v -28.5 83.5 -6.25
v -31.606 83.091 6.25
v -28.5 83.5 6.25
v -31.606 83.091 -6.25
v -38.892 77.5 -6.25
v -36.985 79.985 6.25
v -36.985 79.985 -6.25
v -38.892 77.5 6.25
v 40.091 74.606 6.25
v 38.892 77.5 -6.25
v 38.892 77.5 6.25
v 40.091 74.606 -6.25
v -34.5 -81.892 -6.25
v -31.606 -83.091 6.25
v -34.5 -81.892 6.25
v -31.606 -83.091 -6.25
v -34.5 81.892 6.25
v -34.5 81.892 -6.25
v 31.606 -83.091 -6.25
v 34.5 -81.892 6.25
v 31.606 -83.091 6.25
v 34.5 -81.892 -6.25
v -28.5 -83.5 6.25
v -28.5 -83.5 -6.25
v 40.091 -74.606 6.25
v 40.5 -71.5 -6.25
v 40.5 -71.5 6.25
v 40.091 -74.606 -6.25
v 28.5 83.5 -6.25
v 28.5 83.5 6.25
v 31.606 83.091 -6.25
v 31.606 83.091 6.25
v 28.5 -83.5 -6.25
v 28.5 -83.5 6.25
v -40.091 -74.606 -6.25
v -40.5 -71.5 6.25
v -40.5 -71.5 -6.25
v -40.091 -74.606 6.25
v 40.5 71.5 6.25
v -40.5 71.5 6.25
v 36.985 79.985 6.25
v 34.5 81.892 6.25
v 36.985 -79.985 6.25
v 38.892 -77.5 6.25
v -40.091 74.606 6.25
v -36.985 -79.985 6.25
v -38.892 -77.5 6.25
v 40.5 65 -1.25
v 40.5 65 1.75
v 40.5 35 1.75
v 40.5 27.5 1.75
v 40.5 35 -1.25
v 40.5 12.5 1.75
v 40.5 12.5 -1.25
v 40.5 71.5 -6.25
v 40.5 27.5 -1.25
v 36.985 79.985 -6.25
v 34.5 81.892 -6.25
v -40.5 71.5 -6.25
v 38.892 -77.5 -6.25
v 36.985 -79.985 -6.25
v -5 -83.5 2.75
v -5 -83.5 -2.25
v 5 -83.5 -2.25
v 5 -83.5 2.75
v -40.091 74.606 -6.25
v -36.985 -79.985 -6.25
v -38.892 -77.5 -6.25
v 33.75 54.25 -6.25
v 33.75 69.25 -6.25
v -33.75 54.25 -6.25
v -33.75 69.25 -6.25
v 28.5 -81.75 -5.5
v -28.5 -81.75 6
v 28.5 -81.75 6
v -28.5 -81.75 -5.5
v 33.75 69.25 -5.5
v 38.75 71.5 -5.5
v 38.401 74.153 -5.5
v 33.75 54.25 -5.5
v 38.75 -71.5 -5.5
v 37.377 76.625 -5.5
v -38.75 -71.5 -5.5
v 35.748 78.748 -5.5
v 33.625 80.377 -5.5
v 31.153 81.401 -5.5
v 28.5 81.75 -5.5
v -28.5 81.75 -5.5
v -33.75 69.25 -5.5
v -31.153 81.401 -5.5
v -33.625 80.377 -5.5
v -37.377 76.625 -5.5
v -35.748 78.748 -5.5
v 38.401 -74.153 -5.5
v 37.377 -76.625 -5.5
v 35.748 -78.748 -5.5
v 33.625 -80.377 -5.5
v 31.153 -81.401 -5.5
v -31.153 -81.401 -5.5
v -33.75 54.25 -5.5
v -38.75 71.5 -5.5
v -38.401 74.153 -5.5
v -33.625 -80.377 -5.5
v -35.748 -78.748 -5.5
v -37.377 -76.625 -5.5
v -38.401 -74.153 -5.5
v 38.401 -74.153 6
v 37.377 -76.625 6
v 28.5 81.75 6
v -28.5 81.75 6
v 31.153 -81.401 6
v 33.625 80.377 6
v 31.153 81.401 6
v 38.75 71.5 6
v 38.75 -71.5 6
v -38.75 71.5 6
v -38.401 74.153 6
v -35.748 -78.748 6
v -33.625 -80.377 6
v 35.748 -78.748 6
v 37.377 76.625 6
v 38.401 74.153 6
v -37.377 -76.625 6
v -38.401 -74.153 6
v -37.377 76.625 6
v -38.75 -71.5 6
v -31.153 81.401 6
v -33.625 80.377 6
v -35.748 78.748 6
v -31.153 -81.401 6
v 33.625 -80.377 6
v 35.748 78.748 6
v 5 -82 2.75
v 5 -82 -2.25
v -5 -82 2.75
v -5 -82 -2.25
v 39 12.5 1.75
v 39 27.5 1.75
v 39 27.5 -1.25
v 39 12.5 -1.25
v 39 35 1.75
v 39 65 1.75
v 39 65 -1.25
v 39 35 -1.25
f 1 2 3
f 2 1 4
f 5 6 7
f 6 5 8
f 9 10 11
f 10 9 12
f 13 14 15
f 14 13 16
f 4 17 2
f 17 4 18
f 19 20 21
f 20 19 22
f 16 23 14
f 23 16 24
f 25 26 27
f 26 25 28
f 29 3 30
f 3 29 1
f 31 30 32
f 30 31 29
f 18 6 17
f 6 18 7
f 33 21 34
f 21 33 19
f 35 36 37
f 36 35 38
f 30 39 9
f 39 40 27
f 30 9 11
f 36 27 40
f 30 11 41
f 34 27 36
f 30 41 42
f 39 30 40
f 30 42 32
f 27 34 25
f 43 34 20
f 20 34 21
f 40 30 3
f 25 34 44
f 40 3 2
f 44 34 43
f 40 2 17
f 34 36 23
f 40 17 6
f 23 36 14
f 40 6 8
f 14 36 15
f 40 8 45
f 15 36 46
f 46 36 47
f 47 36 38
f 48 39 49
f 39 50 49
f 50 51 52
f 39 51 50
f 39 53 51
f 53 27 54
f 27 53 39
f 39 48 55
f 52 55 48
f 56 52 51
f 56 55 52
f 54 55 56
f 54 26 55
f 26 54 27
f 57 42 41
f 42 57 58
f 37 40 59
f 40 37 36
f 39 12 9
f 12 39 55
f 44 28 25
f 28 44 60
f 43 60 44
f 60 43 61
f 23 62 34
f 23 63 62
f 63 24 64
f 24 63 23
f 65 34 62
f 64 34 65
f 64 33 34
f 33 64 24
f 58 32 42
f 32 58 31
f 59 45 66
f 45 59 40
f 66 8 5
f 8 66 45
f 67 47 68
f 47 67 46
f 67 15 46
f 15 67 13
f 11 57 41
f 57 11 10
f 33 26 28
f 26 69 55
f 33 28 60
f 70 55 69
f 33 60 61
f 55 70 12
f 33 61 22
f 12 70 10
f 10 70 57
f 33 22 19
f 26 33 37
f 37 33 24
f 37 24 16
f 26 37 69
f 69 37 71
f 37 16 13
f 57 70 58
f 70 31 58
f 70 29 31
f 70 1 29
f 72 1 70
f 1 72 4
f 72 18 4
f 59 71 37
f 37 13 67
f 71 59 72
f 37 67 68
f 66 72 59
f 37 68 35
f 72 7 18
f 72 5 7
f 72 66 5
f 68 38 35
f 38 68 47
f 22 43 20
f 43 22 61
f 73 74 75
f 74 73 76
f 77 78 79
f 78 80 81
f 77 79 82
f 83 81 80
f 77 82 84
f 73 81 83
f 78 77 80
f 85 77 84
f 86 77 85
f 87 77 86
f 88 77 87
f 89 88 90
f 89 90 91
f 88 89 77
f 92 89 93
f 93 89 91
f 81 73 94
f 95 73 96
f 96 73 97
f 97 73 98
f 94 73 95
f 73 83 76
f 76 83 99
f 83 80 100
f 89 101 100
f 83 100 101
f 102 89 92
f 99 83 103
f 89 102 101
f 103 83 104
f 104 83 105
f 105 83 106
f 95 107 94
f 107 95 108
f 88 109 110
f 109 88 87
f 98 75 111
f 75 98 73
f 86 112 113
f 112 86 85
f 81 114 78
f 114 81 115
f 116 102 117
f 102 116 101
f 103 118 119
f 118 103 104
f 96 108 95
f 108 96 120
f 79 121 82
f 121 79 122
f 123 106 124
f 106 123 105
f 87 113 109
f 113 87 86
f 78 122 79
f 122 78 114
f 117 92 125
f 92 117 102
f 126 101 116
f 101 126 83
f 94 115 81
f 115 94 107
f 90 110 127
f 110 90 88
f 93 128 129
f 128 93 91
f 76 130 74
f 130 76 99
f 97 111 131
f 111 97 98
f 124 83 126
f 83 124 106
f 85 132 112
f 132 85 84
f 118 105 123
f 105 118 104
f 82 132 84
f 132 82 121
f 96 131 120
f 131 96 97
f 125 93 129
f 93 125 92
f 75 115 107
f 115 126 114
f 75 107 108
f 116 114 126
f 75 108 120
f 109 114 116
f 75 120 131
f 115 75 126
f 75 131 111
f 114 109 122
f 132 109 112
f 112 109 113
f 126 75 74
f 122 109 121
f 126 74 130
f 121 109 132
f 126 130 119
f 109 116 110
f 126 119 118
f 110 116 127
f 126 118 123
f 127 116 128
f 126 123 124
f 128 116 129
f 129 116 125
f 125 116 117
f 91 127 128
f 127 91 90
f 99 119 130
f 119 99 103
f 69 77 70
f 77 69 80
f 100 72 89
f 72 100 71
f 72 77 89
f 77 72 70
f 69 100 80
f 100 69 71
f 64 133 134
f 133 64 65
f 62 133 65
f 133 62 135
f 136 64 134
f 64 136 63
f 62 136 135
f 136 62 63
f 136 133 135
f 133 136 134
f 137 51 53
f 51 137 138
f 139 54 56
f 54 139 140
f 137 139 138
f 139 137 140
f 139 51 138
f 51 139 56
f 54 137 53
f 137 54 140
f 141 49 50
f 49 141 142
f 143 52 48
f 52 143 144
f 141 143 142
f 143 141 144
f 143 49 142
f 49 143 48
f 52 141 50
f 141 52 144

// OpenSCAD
// OpenSCAD Code for Google Pixel 10 Case (Estimated Dimensions)
// Centered on origin, for FDM 3D Printing
$fn=24;

// -----------------------------------------------------------
// -- PARÁMETROS PRINCIPALES --
// -----------------------------------------------------------

// Dimensiones estimadas para un Google Pixel 10 (mm)
phone_w = 77;   // Ancho
phone_h = 163;  // Alto
phone_t = 9;    // Grosor
phone_corner_r = 10; // Radio de las esquinas del teléfono

// Parámetros de la carcasa
wall_thickness = 2; // Grosor de paredes y parte trasera
lip_height = 1.5;   // Altura del borde que protege la pantalla

// Tolerancia para un mejor ajuste
tolerance = 0.5;

// -----------------------------------------------------------
// -- DIMENSIONES CALCULADAS (No modificar) --
// -----------------------------------------------------------

// Dimensiones del hueco interior para el teléfono
inner_w = phone_w + tolerance;
inner_h = phone_h + tolerance;
inner_t = phone_t + tolerance;
inner_r = phone_corner_r + tolerance/2;

// Dimensiones exteriores de la carcasa
case_w = phone_w + 2 * wall_thickness;
case_h = phone_h + 2 * wall_thickness;
case_t = phone_t + wall_thickness + lip_height;
case_r = phone_corner_r + wall_thickness;

// Desplazamiento vertical del hueco interior para crear el fondo y el borde
z_shift = (wall_thickness - lip_height) / 2;

// -----------------------------------------------------------
// -- MODELO 3D --
// -----------------------------------------------------------

difference() {
    // 1. Cuerpo sólido exterior de la carcasa
    rounded_box([case_w, case_h, case_t], case_r, true);

    // 2. Vaciar el interior para alojar el teléfono
    translate([0, 0, z_shift])
        rounded_box([inner_w, inner_h, inner_t + 2], inner_r, true); // +2 para asegurar un corte limpio

    // 3. Recorte para la cámara (barra horizontal)
    cam_w = inner_w - 10;
    cam_h = 15;
    cam_y_pos = (inner_h / 2) - 20;
    translate([0, cam_y_pos, -case_t / 2])
        cube([cam_w, cam_h, wall_thickness + 1], center=true);

    // 4. Recorte para el puerto USB-C
    usb_w = 10;
    usb_h = 5;
    translate([0, -case_h / 2, z_shift])
        cube([usb_w, wall_thickness + 1, usb_h], center=true);

    // 5. Recorte para el botón de encendido
    power_btn_w = 3;
    power_btn_h = 15;
    power_btn_y_pos = 20;
    translate([case_w / 2, power_btn_y_pos, z_shift])
        cube([wall_thickness + 1, power_btn_h, power_btn_w], center=true);

    // 6. Recorte para los botones de volumen
    vol_btn_w = 3;
    vol_btn_h = 30;
    vol_btn_y_pos = 50;
    translate([case_w / 2, vol_btn_y_pos, z_shift])
        cube([wall_thickness + 1, vol_btn_h, vol_btn_w], center=true);

}

// -----------------------------------------------------------
// -- MÓDULOS --
// -----------------------------------------------------------

// Módulo para crear un cubo con esquinas redondeadas en el plano XY
module rounded_box(size, r, center) {
    x = size[0];
    y = size[1];
    z = size[2];
    
    offset_x = center ? -x/2 : 0;
    offset_y = center ? -y/2 : 0;
    offset_z = center ? -z/2 : 0;
    
    translate([offset_x, offset_y, offset_z])
    hull() {
        // Cilindros en las 4 esquinas
        translate([r, r, 0]) cylinder(h=z, r=r);
        translate([x-r, r, 0]) cylinder(h=z, r=r);
        translate([r, y-r, 0]) cylinder(h=z, r=r);
        translate([x-r, y-r, 0]) cylinder(h=z, r=r);
    }
}
